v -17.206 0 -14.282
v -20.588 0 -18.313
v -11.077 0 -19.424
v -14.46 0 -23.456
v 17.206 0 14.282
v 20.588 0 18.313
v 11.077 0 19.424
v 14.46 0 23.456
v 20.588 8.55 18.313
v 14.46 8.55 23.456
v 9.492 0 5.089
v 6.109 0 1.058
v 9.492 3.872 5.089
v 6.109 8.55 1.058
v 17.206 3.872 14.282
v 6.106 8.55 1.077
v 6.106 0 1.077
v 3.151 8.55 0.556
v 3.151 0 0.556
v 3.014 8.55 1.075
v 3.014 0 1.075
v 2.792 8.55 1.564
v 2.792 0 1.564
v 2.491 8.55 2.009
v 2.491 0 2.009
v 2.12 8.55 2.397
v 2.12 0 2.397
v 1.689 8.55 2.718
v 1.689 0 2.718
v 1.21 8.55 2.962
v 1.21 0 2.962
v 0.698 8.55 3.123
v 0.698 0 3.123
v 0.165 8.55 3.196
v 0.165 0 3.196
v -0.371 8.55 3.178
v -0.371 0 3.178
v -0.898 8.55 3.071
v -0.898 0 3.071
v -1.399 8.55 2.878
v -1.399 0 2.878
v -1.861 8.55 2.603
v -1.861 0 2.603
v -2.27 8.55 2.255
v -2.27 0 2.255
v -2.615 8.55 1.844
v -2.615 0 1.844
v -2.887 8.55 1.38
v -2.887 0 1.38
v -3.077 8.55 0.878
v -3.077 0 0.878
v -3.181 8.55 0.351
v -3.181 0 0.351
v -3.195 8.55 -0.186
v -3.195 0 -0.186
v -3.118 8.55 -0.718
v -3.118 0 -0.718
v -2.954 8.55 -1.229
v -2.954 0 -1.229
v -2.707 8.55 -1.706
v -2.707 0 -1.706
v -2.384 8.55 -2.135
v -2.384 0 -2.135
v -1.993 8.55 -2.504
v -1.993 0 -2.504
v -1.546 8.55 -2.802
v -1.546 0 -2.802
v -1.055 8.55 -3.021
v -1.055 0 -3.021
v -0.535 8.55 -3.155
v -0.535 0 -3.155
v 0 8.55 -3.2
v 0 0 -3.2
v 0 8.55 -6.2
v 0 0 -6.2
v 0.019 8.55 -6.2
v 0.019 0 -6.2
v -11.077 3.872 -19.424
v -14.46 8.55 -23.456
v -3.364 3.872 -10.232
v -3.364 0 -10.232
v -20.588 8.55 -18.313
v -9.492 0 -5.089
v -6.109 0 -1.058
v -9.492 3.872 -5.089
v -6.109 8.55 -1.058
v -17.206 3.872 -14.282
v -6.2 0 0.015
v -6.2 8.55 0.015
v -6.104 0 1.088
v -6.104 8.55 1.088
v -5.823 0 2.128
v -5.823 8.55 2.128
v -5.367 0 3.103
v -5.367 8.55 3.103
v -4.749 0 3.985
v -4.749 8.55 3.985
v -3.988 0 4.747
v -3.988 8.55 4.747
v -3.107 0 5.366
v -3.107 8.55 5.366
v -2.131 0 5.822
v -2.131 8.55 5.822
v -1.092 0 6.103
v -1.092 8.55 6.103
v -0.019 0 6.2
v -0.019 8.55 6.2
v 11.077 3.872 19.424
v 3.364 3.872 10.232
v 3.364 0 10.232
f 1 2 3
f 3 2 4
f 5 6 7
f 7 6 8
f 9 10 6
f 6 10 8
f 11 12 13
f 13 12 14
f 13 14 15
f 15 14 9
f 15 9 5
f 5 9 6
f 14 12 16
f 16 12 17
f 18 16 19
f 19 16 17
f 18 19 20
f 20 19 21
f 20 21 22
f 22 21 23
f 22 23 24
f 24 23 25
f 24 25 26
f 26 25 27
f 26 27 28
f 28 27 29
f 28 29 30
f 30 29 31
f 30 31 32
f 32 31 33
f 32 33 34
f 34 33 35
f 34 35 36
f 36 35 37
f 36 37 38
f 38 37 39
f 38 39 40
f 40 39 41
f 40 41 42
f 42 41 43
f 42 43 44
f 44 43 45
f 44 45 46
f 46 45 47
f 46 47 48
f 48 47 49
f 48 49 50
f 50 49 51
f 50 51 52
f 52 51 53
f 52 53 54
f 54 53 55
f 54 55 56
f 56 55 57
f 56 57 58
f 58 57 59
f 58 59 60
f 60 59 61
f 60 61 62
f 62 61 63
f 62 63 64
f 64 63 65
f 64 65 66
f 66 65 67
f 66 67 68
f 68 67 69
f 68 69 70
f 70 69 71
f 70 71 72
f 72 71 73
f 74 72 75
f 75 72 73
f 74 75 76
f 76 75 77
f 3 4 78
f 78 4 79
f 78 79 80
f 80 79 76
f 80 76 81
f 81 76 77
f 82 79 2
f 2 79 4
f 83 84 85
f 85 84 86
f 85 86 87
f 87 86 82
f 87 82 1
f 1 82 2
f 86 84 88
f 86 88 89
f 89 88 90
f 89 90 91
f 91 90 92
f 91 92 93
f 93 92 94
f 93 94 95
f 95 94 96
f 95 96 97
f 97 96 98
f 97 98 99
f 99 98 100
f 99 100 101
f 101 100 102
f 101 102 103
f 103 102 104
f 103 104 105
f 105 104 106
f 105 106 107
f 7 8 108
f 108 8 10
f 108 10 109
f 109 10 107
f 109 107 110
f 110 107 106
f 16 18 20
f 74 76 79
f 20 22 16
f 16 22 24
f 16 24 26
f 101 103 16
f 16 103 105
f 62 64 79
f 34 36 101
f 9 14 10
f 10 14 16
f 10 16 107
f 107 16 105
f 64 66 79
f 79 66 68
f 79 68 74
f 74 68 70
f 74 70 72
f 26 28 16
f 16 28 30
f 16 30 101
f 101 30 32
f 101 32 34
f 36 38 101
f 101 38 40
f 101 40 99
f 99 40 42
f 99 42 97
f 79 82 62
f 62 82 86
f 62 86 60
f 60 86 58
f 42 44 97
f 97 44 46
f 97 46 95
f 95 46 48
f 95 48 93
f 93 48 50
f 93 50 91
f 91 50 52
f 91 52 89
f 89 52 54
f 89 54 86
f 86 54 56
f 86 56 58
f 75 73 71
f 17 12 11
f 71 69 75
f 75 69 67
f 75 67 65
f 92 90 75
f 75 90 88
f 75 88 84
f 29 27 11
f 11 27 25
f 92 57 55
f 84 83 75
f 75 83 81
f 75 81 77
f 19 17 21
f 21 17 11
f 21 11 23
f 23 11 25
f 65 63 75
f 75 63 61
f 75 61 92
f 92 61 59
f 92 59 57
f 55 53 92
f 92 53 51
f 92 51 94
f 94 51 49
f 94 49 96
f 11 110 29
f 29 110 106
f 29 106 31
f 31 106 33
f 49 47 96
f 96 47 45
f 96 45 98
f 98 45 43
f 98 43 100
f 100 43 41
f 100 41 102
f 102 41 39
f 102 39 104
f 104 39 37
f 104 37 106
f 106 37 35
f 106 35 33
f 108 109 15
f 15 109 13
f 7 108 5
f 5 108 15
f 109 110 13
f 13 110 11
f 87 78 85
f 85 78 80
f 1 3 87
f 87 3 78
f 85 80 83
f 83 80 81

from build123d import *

# Parameters (mm, degrees)
BOSS_EXTRUDE2_DEPTH = 8.55
SKETCH2_W           = 12
SKETCH2_H           = 3.872399236
CUT_EXTRUDE1_DEPTH  = 10


with BuildPart() as part:
    # Sketch1 → Boss-Extrude2 (new body)
    with BuildSketch(Plane(origin=(0, 0, 0), x_dir=(1, 0, 0), z_dir=(0, 1, 0))):
        with BuildLine():
            Line((0, 3.2), (0, 6.2))
            ThreePointArc((0, 6.2), (0.009618254, 6.199992539), (0.019236485, 6.199970158))
            Line((0.019236485, 6.199970158), (-14.46008445, 23.455752899))
            Line((-14.46008445, 23.455752899), (-20.588439995, 18.313452022))
            Line((-20.588439995, 18.313452022), (-6.10911906, 1.05766928))
            ThreePointArc((-6.10911906, 1.05766928), (-4.749475547, -3.98528318), (-0.019236485, -6.199970158))
            Line((-0.019236485, -6.199970158), (14.46008445, -23.455752899))
            Line((14.46008445, -23.455752899), (20.588439995, -18.313452022))
            Line((20.588439995, -18.313452022), (6.10911906, -1.05766928))
            ThreePointArc((6.10911906, -1.05766928), (6.107470914, -1.067145275), (6.105808069, -1.076618702))
            Line((6.105808069, -1.076618702), (3.15138481, -0.555674169))
            ThreePointArc((3.15138481, -0.555674169), (-2.451342218, -2.056920351), (0, 3.2))
        make_face()
    extrude(amount=BOSS_EXTRUDE2_DEPTH)

    # Sketch2 → Cut-Extrude1 (cut)
    with BuildSketch(Plane(origin=(-3.064177772, 0, 2.571150439), x_dir=(0.64278761, 0, 0.766044443), z_dir=(-0.766044443, 0, 0.64278761))):
        with Locations((-16, 1.936199618)):
            Rectangle(SKETCH2_W, SKETCH2_H)
        with Locations((16, 1.936199618)):
            Rectangle(SKETCH2_W, SKETCH2_H)
    extrude(amount=-CUT_EXTRUDE1_DEPTH, mode=Mode.SUBTRACT)


solid = part.part
